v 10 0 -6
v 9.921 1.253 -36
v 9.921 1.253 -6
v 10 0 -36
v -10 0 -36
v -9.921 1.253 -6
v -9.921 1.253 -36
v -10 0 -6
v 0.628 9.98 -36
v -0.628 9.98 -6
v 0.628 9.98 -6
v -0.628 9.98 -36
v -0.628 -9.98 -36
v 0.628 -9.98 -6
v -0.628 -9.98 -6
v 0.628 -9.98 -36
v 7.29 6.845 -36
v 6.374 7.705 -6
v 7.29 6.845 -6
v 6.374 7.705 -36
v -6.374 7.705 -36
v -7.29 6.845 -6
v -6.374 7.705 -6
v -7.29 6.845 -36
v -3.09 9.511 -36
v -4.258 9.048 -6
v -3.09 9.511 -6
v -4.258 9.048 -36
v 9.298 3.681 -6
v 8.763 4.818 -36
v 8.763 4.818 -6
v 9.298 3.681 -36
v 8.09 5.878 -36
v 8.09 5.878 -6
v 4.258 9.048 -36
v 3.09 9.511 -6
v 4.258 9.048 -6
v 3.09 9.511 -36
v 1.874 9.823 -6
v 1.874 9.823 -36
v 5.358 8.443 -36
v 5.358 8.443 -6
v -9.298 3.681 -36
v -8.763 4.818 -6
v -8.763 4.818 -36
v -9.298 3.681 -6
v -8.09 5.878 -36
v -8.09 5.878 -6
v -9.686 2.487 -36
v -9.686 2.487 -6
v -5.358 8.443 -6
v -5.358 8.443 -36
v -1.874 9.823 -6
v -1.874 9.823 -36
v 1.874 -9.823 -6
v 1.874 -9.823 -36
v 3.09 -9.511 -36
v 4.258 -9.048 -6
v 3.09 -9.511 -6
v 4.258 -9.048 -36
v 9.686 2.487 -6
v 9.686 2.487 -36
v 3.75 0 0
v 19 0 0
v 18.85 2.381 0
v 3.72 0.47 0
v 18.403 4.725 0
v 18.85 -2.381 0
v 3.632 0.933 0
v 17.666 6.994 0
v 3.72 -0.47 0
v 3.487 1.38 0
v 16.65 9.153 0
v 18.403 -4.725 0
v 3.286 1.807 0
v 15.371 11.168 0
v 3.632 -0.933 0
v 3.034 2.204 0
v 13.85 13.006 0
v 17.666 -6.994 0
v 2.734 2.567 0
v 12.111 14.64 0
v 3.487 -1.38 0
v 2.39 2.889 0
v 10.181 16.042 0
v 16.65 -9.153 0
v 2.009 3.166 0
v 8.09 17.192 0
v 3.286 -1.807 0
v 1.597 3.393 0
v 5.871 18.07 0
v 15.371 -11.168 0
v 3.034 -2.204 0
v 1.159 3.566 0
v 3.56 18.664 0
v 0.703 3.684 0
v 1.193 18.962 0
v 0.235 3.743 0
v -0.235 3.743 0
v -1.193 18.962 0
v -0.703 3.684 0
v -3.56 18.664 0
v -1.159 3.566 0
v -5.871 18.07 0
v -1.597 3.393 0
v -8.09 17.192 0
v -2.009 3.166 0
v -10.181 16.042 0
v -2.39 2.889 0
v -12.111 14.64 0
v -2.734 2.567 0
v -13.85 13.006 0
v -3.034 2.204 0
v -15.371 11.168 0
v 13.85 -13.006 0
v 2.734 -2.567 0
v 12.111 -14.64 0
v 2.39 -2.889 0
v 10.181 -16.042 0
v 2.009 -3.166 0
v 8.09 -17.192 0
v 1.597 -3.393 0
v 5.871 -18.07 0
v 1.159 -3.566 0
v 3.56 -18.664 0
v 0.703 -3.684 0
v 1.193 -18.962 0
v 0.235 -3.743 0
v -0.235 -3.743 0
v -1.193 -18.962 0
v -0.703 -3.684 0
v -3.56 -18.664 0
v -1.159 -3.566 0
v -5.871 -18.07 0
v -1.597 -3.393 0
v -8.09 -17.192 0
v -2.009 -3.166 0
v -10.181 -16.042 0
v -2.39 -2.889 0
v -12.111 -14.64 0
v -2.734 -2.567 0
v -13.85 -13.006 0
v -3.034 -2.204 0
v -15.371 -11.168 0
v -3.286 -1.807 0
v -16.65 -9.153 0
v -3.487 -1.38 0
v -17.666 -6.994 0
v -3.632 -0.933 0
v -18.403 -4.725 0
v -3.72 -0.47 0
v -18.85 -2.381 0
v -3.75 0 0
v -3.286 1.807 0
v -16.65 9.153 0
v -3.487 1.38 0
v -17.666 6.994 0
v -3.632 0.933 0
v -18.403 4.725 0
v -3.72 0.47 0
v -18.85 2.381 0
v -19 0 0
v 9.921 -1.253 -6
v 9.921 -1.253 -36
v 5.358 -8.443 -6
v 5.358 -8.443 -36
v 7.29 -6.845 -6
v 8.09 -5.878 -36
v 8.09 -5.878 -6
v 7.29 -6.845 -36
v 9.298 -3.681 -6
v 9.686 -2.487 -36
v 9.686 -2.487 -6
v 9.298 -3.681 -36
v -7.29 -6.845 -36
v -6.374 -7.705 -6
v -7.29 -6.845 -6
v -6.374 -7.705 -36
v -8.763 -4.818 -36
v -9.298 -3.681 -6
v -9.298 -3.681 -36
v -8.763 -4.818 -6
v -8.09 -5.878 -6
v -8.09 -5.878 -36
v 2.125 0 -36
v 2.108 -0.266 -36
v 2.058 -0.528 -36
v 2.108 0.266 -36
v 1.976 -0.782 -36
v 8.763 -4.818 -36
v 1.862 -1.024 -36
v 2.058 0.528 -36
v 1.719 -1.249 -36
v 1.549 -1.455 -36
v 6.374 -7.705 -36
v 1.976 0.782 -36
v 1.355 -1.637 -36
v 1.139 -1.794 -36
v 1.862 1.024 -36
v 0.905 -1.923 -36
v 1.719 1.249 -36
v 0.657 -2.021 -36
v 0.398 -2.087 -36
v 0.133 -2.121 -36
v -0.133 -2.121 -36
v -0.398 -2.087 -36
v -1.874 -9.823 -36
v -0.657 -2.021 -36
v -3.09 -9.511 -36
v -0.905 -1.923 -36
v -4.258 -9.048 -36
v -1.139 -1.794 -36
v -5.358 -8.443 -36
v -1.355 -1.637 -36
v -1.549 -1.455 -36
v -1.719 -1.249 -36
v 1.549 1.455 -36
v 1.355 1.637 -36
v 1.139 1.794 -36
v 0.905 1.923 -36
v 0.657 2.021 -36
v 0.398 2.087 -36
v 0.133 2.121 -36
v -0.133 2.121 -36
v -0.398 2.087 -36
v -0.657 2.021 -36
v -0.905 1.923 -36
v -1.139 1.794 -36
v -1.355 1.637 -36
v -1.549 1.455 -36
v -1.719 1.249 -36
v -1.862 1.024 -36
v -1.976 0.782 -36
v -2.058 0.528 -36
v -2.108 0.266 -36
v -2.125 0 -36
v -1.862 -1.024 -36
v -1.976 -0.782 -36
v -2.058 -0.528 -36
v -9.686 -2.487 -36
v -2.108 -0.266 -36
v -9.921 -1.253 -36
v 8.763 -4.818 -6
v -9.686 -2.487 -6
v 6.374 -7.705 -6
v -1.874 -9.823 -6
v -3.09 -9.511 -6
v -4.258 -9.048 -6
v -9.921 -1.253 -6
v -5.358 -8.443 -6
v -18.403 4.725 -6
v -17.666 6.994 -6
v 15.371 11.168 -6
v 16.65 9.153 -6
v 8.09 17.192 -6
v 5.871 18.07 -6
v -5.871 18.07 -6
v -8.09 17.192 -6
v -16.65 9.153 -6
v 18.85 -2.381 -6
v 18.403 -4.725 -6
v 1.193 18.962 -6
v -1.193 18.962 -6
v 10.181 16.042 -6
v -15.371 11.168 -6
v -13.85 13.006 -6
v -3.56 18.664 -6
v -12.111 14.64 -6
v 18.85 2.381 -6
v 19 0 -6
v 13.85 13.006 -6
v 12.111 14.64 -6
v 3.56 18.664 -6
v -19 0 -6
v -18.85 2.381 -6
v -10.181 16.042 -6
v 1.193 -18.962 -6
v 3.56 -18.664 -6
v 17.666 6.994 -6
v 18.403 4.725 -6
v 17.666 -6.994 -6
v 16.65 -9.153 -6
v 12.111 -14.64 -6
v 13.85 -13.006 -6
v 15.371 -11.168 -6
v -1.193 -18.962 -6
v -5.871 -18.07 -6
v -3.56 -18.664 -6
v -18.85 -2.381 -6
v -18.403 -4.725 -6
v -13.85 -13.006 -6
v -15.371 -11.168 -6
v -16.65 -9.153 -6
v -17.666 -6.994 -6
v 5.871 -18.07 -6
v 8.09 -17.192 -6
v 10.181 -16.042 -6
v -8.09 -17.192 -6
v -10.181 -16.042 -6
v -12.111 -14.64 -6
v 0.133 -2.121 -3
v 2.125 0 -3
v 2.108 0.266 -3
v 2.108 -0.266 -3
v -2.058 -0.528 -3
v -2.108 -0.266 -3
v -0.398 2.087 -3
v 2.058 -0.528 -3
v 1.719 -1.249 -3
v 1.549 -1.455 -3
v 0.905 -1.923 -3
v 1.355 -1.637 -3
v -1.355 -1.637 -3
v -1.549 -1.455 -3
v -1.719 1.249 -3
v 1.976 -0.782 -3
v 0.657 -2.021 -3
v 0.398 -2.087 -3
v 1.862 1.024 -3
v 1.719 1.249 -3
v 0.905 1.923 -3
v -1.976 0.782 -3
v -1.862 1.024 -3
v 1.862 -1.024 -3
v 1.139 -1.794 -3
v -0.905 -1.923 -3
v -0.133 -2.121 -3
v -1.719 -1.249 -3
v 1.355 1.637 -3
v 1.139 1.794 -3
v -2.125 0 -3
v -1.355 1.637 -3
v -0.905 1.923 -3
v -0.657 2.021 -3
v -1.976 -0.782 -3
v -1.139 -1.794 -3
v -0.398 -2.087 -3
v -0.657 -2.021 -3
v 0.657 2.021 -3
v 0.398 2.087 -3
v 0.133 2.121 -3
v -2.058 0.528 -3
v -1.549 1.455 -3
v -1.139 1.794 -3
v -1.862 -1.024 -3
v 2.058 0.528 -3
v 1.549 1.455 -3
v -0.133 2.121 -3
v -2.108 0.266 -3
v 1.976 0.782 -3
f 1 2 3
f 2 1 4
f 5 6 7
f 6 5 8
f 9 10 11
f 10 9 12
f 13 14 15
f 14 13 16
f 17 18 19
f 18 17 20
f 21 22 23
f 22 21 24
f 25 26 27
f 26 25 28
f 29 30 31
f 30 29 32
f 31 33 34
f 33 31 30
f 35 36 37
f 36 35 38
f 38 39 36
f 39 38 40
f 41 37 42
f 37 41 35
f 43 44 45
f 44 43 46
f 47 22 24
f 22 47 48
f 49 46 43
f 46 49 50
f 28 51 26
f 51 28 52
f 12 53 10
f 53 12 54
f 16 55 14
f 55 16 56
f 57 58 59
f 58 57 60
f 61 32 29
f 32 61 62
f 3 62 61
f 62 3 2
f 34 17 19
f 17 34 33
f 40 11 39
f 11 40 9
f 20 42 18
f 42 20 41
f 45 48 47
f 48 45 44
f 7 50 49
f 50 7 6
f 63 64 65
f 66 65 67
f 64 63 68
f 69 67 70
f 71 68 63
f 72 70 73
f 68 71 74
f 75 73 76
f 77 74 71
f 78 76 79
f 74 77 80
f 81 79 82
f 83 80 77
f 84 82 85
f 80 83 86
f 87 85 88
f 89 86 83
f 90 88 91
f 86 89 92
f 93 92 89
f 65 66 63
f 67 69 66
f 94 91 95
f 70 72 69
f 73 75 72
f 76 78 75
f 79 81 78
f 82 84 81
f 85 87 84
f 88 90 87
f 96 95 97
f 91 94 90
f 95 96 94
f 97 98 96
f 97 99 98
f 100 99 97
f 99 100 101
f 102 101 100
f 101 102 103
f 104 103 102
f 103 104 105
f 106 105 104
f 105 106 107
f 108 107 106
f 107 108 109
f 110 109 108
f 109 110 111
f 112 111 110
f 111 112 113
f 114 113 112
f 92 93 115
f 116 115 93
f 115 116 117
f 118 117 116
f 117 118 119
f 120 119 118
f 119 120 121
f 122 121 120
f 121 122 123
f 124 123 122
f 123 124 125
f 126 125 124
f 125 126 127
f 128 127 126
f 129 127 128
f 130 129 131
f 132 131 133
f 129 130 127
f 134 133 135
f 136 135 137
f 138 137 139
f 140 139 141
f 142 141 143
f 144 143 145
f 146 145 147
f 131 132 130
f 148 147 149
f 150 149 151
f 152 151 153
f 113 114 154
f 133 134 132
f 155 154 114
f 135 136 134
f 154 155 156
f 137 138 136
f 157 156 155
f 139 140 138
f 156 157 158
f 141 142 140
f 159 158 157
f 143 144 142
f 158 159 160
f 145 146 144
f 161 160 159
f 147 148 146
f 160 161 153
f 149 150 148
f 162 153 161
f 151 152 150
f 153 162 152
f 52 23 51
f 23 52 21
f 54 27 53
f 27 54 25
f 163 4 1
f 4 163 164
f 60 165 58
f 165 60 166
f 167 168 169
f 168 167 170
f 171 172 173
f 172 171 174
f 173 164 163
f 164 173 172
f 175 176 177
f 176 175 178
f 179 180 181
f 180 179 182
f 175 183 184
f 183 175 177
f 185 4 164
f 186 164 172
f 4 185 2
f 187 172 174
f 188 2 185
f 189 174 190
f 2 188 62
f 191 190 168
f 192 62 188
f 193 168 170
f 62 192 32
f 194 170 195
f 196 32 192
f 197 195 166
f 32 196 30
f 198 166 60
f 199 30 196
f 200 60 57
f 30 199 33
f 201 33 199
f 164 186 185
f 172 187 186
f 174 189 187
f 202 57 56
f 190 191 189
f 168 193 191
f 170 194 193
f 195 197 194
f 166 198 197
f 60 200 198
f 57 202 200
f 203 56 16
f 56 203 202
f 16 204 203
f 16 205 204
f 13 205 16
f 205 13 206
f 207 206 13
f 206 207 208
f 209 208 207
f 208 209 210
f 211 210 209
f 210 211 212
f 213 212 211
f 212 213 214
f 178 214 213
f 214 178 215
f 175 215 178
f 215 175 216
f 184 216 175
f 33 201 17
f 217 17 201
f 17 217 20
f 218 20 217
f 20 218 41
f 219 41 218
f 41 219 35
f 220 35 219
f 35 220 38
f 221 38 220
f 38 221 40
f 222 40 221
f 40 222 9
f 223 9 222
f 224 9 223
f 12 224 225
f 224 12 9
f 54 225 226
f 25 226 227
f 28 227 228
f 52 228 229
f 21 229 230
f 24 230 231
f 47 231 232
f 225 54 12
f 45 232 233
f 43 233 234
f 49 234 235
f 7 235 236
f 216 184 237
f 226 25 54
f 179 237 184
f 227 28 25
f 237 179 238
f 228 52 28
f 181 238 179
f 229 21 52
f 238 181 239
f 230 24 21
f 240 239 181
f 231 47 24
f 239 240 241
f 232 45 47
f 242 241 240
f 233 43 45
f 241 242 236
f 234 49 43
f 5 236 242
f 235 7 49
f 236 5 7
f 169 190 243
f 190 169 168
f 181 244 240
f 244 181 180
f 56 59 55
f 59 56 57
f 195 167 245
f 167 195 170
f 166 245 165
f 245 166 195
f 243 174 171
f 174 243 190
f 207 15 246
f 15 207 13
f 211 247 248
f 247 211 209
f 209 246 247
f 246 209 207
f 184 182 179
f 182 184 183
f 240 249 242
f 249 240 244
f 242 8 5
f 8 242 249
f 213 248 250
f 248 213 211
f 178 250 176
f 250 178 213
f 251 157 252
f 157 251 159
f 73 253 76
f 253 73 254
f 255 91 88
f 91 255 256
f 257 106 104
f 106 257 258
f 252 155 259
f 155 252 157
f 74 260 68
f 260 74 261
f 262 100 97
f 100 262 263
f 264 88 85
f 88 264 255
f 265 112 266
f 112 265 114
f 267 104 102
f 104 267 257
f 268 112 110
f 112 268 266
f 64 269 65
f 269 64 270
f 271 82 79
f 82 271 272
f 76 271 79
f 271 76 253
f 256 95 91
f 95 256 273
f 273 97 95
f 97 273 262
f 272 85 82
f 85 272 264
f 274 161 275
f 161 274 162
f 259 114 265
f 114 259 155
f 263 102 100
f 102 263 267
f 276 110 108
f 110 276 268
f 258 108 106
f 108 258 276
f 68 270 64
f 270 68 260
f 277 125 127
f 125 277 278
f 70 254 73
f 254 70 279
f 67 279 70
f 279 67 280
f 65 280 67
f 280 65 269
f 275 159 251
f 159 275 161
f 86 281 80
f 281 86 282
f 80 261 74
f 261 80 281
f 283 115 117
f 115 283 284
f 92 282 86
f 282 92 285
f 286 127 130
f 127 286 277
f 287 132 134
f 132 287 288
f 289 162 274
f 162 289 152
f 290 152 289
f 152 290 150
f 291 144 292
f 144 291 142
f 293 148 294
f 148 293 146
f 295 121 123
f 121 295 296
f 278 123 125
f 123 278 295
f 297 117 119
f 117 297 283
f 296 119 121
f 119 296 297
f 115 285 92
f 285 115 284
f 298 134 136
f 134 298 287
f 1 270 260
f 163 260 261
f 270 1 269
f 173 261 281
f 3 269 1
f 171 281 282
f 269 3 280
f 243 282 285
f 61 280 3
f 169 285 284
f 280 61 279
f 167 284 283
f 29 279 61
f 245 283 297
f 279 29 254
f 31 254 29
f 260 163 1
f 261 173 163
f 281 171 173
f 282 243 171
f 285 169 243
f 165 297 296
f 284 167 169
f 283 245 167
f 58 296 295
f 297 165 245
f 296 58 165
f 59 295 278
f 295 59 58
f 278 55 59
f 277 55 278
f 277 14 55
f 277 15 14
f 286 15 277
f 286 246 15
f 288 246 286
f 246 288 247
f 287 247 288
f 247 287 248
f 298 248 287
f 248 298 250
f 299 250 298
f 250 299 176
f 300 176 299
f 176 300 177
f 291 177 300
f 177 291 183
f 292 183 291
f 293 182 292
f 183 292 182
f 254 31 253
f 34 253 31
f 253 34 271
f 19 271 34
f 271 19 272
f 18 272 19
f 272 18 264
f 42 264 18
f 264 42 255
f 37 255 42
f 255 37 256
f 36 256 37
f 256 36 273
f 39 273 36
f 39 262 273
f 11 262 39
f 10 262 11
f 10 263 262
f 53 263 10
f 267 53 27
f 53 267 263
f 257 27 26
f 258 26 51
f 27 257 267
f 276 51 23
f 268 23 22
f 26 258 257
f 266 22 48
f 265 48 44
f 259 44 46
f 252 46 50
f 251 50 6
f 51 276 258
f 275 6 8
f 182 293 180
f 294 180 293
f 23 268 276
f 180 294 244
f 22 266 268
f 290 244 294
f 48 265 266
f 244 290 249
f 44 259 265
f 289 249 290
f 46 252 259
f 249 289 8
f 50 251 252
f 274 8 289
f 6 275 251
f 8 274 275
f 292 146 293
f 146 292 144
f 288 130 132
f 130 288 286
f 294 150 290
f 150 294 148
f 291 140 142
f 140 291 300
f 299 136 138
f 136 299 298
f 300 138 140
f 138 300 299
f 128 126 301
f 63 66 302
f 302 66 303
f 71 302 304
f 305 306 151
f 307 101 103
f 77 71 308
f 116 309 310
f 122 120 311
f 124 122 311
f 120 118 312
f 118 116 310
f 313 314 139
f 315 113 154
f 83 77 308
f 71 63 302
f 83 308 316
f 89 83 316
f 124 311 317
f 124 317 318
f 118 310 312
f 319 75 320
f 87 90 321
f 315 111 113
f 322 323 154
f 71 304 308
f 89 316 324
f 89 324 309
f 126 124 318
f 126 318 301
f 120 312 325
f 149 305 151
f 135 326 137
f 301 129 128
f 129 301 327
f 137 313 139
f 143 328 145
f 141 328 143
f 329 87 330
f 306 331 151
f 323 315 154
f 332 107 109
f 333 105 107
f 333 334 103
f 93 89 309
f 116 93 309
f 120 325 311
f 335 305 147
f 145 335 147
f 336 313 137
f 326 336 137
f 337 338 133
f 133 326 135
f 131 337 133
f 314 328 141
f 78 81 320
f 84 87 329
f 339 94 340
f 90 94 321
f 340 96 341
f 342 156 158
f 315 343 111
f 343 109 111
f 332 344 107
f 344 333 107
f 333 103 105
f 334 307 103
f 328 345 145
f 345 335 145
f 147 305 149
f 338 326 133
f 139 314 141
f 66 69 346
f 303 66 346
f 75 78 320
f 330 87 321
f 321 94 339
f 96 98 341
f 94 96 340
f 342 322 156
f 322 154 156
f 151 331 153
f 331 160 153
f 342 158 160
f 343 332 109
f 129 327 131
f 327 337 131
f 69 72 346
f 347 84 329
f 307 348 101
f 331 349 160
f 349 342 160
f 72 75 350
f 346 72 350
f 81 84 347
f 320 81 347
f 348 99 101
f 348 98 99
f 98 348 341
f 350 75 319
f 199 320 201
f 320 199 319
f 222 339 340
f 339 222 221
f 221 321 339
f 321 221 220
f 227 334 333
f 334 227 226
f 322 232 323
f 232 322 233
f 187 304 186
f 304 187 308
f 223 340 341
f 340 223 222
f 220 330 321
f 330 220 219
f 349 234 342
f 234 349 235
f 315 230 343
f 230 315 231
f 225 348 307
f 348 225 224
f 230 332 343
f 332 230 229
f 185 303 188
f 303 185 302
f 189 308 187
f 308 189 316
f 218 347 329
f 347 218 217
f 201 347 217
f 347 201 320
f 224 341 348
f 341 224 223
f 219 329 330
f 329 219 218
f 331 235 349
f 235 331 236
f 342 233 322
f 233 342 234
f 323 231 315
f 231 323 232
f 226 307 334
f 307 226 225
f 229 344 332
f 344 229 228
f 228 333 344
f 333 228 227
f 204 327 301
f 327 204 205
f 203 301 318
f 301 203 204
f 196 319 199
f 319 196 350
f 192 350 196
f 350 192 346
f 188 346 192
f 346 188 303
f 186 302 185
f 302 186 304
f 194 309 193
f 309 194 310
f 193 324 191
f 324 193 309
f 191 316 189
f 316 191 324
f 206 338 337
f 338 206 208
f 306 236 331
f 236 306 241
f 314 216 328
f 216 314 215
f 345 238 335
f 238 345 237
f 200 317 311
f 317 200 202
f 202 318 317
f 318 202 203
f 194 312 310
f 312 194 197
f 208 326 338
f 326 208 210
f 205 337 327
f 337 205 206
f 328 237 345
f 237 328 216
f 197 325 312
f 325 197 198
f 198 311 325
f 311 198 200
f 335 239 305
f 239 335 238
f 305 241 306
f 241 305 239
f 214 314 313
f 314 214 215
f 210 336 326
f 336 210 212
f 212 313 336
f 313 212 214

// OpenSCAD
$fn = 50;


difference() {
	union() {
		translate(v = [0, 0, -36.0000000000]) {
			cylinder(h = 36, r = 10.0000000000);
		}
		translate(v = [0, 0, -6.0000000000]) {
			cylinder(h = 6, r = 19.0000000000);
		}
	}
	union() {
		translate(v = [0, 0, 0]) {
			rotate(a = [0, 0, 0]) {
				difference() {
					union() {
						#translate(v = [0, 0, -36.0000000000]) {
							cylinder(h = 36, r = 2.0000000000);
						}
						#translate(v = [0, 0, -3]) {
							cylinder(h = 3, r = 10.0000000000, r1 = 2.1250000000, r2 = 3.7500000000);
						}
						#translate(v = [0, 0, -36.0000000000]) {
							cylinder(h = 36, r = 2.1250000000);
						}
						#translate(v = [0, 0, -36.0000000000]) {
							cylinder(h = 36, r = 2.0000000000);
						}
					}
					union();
				}
			}
		}
	}
}
